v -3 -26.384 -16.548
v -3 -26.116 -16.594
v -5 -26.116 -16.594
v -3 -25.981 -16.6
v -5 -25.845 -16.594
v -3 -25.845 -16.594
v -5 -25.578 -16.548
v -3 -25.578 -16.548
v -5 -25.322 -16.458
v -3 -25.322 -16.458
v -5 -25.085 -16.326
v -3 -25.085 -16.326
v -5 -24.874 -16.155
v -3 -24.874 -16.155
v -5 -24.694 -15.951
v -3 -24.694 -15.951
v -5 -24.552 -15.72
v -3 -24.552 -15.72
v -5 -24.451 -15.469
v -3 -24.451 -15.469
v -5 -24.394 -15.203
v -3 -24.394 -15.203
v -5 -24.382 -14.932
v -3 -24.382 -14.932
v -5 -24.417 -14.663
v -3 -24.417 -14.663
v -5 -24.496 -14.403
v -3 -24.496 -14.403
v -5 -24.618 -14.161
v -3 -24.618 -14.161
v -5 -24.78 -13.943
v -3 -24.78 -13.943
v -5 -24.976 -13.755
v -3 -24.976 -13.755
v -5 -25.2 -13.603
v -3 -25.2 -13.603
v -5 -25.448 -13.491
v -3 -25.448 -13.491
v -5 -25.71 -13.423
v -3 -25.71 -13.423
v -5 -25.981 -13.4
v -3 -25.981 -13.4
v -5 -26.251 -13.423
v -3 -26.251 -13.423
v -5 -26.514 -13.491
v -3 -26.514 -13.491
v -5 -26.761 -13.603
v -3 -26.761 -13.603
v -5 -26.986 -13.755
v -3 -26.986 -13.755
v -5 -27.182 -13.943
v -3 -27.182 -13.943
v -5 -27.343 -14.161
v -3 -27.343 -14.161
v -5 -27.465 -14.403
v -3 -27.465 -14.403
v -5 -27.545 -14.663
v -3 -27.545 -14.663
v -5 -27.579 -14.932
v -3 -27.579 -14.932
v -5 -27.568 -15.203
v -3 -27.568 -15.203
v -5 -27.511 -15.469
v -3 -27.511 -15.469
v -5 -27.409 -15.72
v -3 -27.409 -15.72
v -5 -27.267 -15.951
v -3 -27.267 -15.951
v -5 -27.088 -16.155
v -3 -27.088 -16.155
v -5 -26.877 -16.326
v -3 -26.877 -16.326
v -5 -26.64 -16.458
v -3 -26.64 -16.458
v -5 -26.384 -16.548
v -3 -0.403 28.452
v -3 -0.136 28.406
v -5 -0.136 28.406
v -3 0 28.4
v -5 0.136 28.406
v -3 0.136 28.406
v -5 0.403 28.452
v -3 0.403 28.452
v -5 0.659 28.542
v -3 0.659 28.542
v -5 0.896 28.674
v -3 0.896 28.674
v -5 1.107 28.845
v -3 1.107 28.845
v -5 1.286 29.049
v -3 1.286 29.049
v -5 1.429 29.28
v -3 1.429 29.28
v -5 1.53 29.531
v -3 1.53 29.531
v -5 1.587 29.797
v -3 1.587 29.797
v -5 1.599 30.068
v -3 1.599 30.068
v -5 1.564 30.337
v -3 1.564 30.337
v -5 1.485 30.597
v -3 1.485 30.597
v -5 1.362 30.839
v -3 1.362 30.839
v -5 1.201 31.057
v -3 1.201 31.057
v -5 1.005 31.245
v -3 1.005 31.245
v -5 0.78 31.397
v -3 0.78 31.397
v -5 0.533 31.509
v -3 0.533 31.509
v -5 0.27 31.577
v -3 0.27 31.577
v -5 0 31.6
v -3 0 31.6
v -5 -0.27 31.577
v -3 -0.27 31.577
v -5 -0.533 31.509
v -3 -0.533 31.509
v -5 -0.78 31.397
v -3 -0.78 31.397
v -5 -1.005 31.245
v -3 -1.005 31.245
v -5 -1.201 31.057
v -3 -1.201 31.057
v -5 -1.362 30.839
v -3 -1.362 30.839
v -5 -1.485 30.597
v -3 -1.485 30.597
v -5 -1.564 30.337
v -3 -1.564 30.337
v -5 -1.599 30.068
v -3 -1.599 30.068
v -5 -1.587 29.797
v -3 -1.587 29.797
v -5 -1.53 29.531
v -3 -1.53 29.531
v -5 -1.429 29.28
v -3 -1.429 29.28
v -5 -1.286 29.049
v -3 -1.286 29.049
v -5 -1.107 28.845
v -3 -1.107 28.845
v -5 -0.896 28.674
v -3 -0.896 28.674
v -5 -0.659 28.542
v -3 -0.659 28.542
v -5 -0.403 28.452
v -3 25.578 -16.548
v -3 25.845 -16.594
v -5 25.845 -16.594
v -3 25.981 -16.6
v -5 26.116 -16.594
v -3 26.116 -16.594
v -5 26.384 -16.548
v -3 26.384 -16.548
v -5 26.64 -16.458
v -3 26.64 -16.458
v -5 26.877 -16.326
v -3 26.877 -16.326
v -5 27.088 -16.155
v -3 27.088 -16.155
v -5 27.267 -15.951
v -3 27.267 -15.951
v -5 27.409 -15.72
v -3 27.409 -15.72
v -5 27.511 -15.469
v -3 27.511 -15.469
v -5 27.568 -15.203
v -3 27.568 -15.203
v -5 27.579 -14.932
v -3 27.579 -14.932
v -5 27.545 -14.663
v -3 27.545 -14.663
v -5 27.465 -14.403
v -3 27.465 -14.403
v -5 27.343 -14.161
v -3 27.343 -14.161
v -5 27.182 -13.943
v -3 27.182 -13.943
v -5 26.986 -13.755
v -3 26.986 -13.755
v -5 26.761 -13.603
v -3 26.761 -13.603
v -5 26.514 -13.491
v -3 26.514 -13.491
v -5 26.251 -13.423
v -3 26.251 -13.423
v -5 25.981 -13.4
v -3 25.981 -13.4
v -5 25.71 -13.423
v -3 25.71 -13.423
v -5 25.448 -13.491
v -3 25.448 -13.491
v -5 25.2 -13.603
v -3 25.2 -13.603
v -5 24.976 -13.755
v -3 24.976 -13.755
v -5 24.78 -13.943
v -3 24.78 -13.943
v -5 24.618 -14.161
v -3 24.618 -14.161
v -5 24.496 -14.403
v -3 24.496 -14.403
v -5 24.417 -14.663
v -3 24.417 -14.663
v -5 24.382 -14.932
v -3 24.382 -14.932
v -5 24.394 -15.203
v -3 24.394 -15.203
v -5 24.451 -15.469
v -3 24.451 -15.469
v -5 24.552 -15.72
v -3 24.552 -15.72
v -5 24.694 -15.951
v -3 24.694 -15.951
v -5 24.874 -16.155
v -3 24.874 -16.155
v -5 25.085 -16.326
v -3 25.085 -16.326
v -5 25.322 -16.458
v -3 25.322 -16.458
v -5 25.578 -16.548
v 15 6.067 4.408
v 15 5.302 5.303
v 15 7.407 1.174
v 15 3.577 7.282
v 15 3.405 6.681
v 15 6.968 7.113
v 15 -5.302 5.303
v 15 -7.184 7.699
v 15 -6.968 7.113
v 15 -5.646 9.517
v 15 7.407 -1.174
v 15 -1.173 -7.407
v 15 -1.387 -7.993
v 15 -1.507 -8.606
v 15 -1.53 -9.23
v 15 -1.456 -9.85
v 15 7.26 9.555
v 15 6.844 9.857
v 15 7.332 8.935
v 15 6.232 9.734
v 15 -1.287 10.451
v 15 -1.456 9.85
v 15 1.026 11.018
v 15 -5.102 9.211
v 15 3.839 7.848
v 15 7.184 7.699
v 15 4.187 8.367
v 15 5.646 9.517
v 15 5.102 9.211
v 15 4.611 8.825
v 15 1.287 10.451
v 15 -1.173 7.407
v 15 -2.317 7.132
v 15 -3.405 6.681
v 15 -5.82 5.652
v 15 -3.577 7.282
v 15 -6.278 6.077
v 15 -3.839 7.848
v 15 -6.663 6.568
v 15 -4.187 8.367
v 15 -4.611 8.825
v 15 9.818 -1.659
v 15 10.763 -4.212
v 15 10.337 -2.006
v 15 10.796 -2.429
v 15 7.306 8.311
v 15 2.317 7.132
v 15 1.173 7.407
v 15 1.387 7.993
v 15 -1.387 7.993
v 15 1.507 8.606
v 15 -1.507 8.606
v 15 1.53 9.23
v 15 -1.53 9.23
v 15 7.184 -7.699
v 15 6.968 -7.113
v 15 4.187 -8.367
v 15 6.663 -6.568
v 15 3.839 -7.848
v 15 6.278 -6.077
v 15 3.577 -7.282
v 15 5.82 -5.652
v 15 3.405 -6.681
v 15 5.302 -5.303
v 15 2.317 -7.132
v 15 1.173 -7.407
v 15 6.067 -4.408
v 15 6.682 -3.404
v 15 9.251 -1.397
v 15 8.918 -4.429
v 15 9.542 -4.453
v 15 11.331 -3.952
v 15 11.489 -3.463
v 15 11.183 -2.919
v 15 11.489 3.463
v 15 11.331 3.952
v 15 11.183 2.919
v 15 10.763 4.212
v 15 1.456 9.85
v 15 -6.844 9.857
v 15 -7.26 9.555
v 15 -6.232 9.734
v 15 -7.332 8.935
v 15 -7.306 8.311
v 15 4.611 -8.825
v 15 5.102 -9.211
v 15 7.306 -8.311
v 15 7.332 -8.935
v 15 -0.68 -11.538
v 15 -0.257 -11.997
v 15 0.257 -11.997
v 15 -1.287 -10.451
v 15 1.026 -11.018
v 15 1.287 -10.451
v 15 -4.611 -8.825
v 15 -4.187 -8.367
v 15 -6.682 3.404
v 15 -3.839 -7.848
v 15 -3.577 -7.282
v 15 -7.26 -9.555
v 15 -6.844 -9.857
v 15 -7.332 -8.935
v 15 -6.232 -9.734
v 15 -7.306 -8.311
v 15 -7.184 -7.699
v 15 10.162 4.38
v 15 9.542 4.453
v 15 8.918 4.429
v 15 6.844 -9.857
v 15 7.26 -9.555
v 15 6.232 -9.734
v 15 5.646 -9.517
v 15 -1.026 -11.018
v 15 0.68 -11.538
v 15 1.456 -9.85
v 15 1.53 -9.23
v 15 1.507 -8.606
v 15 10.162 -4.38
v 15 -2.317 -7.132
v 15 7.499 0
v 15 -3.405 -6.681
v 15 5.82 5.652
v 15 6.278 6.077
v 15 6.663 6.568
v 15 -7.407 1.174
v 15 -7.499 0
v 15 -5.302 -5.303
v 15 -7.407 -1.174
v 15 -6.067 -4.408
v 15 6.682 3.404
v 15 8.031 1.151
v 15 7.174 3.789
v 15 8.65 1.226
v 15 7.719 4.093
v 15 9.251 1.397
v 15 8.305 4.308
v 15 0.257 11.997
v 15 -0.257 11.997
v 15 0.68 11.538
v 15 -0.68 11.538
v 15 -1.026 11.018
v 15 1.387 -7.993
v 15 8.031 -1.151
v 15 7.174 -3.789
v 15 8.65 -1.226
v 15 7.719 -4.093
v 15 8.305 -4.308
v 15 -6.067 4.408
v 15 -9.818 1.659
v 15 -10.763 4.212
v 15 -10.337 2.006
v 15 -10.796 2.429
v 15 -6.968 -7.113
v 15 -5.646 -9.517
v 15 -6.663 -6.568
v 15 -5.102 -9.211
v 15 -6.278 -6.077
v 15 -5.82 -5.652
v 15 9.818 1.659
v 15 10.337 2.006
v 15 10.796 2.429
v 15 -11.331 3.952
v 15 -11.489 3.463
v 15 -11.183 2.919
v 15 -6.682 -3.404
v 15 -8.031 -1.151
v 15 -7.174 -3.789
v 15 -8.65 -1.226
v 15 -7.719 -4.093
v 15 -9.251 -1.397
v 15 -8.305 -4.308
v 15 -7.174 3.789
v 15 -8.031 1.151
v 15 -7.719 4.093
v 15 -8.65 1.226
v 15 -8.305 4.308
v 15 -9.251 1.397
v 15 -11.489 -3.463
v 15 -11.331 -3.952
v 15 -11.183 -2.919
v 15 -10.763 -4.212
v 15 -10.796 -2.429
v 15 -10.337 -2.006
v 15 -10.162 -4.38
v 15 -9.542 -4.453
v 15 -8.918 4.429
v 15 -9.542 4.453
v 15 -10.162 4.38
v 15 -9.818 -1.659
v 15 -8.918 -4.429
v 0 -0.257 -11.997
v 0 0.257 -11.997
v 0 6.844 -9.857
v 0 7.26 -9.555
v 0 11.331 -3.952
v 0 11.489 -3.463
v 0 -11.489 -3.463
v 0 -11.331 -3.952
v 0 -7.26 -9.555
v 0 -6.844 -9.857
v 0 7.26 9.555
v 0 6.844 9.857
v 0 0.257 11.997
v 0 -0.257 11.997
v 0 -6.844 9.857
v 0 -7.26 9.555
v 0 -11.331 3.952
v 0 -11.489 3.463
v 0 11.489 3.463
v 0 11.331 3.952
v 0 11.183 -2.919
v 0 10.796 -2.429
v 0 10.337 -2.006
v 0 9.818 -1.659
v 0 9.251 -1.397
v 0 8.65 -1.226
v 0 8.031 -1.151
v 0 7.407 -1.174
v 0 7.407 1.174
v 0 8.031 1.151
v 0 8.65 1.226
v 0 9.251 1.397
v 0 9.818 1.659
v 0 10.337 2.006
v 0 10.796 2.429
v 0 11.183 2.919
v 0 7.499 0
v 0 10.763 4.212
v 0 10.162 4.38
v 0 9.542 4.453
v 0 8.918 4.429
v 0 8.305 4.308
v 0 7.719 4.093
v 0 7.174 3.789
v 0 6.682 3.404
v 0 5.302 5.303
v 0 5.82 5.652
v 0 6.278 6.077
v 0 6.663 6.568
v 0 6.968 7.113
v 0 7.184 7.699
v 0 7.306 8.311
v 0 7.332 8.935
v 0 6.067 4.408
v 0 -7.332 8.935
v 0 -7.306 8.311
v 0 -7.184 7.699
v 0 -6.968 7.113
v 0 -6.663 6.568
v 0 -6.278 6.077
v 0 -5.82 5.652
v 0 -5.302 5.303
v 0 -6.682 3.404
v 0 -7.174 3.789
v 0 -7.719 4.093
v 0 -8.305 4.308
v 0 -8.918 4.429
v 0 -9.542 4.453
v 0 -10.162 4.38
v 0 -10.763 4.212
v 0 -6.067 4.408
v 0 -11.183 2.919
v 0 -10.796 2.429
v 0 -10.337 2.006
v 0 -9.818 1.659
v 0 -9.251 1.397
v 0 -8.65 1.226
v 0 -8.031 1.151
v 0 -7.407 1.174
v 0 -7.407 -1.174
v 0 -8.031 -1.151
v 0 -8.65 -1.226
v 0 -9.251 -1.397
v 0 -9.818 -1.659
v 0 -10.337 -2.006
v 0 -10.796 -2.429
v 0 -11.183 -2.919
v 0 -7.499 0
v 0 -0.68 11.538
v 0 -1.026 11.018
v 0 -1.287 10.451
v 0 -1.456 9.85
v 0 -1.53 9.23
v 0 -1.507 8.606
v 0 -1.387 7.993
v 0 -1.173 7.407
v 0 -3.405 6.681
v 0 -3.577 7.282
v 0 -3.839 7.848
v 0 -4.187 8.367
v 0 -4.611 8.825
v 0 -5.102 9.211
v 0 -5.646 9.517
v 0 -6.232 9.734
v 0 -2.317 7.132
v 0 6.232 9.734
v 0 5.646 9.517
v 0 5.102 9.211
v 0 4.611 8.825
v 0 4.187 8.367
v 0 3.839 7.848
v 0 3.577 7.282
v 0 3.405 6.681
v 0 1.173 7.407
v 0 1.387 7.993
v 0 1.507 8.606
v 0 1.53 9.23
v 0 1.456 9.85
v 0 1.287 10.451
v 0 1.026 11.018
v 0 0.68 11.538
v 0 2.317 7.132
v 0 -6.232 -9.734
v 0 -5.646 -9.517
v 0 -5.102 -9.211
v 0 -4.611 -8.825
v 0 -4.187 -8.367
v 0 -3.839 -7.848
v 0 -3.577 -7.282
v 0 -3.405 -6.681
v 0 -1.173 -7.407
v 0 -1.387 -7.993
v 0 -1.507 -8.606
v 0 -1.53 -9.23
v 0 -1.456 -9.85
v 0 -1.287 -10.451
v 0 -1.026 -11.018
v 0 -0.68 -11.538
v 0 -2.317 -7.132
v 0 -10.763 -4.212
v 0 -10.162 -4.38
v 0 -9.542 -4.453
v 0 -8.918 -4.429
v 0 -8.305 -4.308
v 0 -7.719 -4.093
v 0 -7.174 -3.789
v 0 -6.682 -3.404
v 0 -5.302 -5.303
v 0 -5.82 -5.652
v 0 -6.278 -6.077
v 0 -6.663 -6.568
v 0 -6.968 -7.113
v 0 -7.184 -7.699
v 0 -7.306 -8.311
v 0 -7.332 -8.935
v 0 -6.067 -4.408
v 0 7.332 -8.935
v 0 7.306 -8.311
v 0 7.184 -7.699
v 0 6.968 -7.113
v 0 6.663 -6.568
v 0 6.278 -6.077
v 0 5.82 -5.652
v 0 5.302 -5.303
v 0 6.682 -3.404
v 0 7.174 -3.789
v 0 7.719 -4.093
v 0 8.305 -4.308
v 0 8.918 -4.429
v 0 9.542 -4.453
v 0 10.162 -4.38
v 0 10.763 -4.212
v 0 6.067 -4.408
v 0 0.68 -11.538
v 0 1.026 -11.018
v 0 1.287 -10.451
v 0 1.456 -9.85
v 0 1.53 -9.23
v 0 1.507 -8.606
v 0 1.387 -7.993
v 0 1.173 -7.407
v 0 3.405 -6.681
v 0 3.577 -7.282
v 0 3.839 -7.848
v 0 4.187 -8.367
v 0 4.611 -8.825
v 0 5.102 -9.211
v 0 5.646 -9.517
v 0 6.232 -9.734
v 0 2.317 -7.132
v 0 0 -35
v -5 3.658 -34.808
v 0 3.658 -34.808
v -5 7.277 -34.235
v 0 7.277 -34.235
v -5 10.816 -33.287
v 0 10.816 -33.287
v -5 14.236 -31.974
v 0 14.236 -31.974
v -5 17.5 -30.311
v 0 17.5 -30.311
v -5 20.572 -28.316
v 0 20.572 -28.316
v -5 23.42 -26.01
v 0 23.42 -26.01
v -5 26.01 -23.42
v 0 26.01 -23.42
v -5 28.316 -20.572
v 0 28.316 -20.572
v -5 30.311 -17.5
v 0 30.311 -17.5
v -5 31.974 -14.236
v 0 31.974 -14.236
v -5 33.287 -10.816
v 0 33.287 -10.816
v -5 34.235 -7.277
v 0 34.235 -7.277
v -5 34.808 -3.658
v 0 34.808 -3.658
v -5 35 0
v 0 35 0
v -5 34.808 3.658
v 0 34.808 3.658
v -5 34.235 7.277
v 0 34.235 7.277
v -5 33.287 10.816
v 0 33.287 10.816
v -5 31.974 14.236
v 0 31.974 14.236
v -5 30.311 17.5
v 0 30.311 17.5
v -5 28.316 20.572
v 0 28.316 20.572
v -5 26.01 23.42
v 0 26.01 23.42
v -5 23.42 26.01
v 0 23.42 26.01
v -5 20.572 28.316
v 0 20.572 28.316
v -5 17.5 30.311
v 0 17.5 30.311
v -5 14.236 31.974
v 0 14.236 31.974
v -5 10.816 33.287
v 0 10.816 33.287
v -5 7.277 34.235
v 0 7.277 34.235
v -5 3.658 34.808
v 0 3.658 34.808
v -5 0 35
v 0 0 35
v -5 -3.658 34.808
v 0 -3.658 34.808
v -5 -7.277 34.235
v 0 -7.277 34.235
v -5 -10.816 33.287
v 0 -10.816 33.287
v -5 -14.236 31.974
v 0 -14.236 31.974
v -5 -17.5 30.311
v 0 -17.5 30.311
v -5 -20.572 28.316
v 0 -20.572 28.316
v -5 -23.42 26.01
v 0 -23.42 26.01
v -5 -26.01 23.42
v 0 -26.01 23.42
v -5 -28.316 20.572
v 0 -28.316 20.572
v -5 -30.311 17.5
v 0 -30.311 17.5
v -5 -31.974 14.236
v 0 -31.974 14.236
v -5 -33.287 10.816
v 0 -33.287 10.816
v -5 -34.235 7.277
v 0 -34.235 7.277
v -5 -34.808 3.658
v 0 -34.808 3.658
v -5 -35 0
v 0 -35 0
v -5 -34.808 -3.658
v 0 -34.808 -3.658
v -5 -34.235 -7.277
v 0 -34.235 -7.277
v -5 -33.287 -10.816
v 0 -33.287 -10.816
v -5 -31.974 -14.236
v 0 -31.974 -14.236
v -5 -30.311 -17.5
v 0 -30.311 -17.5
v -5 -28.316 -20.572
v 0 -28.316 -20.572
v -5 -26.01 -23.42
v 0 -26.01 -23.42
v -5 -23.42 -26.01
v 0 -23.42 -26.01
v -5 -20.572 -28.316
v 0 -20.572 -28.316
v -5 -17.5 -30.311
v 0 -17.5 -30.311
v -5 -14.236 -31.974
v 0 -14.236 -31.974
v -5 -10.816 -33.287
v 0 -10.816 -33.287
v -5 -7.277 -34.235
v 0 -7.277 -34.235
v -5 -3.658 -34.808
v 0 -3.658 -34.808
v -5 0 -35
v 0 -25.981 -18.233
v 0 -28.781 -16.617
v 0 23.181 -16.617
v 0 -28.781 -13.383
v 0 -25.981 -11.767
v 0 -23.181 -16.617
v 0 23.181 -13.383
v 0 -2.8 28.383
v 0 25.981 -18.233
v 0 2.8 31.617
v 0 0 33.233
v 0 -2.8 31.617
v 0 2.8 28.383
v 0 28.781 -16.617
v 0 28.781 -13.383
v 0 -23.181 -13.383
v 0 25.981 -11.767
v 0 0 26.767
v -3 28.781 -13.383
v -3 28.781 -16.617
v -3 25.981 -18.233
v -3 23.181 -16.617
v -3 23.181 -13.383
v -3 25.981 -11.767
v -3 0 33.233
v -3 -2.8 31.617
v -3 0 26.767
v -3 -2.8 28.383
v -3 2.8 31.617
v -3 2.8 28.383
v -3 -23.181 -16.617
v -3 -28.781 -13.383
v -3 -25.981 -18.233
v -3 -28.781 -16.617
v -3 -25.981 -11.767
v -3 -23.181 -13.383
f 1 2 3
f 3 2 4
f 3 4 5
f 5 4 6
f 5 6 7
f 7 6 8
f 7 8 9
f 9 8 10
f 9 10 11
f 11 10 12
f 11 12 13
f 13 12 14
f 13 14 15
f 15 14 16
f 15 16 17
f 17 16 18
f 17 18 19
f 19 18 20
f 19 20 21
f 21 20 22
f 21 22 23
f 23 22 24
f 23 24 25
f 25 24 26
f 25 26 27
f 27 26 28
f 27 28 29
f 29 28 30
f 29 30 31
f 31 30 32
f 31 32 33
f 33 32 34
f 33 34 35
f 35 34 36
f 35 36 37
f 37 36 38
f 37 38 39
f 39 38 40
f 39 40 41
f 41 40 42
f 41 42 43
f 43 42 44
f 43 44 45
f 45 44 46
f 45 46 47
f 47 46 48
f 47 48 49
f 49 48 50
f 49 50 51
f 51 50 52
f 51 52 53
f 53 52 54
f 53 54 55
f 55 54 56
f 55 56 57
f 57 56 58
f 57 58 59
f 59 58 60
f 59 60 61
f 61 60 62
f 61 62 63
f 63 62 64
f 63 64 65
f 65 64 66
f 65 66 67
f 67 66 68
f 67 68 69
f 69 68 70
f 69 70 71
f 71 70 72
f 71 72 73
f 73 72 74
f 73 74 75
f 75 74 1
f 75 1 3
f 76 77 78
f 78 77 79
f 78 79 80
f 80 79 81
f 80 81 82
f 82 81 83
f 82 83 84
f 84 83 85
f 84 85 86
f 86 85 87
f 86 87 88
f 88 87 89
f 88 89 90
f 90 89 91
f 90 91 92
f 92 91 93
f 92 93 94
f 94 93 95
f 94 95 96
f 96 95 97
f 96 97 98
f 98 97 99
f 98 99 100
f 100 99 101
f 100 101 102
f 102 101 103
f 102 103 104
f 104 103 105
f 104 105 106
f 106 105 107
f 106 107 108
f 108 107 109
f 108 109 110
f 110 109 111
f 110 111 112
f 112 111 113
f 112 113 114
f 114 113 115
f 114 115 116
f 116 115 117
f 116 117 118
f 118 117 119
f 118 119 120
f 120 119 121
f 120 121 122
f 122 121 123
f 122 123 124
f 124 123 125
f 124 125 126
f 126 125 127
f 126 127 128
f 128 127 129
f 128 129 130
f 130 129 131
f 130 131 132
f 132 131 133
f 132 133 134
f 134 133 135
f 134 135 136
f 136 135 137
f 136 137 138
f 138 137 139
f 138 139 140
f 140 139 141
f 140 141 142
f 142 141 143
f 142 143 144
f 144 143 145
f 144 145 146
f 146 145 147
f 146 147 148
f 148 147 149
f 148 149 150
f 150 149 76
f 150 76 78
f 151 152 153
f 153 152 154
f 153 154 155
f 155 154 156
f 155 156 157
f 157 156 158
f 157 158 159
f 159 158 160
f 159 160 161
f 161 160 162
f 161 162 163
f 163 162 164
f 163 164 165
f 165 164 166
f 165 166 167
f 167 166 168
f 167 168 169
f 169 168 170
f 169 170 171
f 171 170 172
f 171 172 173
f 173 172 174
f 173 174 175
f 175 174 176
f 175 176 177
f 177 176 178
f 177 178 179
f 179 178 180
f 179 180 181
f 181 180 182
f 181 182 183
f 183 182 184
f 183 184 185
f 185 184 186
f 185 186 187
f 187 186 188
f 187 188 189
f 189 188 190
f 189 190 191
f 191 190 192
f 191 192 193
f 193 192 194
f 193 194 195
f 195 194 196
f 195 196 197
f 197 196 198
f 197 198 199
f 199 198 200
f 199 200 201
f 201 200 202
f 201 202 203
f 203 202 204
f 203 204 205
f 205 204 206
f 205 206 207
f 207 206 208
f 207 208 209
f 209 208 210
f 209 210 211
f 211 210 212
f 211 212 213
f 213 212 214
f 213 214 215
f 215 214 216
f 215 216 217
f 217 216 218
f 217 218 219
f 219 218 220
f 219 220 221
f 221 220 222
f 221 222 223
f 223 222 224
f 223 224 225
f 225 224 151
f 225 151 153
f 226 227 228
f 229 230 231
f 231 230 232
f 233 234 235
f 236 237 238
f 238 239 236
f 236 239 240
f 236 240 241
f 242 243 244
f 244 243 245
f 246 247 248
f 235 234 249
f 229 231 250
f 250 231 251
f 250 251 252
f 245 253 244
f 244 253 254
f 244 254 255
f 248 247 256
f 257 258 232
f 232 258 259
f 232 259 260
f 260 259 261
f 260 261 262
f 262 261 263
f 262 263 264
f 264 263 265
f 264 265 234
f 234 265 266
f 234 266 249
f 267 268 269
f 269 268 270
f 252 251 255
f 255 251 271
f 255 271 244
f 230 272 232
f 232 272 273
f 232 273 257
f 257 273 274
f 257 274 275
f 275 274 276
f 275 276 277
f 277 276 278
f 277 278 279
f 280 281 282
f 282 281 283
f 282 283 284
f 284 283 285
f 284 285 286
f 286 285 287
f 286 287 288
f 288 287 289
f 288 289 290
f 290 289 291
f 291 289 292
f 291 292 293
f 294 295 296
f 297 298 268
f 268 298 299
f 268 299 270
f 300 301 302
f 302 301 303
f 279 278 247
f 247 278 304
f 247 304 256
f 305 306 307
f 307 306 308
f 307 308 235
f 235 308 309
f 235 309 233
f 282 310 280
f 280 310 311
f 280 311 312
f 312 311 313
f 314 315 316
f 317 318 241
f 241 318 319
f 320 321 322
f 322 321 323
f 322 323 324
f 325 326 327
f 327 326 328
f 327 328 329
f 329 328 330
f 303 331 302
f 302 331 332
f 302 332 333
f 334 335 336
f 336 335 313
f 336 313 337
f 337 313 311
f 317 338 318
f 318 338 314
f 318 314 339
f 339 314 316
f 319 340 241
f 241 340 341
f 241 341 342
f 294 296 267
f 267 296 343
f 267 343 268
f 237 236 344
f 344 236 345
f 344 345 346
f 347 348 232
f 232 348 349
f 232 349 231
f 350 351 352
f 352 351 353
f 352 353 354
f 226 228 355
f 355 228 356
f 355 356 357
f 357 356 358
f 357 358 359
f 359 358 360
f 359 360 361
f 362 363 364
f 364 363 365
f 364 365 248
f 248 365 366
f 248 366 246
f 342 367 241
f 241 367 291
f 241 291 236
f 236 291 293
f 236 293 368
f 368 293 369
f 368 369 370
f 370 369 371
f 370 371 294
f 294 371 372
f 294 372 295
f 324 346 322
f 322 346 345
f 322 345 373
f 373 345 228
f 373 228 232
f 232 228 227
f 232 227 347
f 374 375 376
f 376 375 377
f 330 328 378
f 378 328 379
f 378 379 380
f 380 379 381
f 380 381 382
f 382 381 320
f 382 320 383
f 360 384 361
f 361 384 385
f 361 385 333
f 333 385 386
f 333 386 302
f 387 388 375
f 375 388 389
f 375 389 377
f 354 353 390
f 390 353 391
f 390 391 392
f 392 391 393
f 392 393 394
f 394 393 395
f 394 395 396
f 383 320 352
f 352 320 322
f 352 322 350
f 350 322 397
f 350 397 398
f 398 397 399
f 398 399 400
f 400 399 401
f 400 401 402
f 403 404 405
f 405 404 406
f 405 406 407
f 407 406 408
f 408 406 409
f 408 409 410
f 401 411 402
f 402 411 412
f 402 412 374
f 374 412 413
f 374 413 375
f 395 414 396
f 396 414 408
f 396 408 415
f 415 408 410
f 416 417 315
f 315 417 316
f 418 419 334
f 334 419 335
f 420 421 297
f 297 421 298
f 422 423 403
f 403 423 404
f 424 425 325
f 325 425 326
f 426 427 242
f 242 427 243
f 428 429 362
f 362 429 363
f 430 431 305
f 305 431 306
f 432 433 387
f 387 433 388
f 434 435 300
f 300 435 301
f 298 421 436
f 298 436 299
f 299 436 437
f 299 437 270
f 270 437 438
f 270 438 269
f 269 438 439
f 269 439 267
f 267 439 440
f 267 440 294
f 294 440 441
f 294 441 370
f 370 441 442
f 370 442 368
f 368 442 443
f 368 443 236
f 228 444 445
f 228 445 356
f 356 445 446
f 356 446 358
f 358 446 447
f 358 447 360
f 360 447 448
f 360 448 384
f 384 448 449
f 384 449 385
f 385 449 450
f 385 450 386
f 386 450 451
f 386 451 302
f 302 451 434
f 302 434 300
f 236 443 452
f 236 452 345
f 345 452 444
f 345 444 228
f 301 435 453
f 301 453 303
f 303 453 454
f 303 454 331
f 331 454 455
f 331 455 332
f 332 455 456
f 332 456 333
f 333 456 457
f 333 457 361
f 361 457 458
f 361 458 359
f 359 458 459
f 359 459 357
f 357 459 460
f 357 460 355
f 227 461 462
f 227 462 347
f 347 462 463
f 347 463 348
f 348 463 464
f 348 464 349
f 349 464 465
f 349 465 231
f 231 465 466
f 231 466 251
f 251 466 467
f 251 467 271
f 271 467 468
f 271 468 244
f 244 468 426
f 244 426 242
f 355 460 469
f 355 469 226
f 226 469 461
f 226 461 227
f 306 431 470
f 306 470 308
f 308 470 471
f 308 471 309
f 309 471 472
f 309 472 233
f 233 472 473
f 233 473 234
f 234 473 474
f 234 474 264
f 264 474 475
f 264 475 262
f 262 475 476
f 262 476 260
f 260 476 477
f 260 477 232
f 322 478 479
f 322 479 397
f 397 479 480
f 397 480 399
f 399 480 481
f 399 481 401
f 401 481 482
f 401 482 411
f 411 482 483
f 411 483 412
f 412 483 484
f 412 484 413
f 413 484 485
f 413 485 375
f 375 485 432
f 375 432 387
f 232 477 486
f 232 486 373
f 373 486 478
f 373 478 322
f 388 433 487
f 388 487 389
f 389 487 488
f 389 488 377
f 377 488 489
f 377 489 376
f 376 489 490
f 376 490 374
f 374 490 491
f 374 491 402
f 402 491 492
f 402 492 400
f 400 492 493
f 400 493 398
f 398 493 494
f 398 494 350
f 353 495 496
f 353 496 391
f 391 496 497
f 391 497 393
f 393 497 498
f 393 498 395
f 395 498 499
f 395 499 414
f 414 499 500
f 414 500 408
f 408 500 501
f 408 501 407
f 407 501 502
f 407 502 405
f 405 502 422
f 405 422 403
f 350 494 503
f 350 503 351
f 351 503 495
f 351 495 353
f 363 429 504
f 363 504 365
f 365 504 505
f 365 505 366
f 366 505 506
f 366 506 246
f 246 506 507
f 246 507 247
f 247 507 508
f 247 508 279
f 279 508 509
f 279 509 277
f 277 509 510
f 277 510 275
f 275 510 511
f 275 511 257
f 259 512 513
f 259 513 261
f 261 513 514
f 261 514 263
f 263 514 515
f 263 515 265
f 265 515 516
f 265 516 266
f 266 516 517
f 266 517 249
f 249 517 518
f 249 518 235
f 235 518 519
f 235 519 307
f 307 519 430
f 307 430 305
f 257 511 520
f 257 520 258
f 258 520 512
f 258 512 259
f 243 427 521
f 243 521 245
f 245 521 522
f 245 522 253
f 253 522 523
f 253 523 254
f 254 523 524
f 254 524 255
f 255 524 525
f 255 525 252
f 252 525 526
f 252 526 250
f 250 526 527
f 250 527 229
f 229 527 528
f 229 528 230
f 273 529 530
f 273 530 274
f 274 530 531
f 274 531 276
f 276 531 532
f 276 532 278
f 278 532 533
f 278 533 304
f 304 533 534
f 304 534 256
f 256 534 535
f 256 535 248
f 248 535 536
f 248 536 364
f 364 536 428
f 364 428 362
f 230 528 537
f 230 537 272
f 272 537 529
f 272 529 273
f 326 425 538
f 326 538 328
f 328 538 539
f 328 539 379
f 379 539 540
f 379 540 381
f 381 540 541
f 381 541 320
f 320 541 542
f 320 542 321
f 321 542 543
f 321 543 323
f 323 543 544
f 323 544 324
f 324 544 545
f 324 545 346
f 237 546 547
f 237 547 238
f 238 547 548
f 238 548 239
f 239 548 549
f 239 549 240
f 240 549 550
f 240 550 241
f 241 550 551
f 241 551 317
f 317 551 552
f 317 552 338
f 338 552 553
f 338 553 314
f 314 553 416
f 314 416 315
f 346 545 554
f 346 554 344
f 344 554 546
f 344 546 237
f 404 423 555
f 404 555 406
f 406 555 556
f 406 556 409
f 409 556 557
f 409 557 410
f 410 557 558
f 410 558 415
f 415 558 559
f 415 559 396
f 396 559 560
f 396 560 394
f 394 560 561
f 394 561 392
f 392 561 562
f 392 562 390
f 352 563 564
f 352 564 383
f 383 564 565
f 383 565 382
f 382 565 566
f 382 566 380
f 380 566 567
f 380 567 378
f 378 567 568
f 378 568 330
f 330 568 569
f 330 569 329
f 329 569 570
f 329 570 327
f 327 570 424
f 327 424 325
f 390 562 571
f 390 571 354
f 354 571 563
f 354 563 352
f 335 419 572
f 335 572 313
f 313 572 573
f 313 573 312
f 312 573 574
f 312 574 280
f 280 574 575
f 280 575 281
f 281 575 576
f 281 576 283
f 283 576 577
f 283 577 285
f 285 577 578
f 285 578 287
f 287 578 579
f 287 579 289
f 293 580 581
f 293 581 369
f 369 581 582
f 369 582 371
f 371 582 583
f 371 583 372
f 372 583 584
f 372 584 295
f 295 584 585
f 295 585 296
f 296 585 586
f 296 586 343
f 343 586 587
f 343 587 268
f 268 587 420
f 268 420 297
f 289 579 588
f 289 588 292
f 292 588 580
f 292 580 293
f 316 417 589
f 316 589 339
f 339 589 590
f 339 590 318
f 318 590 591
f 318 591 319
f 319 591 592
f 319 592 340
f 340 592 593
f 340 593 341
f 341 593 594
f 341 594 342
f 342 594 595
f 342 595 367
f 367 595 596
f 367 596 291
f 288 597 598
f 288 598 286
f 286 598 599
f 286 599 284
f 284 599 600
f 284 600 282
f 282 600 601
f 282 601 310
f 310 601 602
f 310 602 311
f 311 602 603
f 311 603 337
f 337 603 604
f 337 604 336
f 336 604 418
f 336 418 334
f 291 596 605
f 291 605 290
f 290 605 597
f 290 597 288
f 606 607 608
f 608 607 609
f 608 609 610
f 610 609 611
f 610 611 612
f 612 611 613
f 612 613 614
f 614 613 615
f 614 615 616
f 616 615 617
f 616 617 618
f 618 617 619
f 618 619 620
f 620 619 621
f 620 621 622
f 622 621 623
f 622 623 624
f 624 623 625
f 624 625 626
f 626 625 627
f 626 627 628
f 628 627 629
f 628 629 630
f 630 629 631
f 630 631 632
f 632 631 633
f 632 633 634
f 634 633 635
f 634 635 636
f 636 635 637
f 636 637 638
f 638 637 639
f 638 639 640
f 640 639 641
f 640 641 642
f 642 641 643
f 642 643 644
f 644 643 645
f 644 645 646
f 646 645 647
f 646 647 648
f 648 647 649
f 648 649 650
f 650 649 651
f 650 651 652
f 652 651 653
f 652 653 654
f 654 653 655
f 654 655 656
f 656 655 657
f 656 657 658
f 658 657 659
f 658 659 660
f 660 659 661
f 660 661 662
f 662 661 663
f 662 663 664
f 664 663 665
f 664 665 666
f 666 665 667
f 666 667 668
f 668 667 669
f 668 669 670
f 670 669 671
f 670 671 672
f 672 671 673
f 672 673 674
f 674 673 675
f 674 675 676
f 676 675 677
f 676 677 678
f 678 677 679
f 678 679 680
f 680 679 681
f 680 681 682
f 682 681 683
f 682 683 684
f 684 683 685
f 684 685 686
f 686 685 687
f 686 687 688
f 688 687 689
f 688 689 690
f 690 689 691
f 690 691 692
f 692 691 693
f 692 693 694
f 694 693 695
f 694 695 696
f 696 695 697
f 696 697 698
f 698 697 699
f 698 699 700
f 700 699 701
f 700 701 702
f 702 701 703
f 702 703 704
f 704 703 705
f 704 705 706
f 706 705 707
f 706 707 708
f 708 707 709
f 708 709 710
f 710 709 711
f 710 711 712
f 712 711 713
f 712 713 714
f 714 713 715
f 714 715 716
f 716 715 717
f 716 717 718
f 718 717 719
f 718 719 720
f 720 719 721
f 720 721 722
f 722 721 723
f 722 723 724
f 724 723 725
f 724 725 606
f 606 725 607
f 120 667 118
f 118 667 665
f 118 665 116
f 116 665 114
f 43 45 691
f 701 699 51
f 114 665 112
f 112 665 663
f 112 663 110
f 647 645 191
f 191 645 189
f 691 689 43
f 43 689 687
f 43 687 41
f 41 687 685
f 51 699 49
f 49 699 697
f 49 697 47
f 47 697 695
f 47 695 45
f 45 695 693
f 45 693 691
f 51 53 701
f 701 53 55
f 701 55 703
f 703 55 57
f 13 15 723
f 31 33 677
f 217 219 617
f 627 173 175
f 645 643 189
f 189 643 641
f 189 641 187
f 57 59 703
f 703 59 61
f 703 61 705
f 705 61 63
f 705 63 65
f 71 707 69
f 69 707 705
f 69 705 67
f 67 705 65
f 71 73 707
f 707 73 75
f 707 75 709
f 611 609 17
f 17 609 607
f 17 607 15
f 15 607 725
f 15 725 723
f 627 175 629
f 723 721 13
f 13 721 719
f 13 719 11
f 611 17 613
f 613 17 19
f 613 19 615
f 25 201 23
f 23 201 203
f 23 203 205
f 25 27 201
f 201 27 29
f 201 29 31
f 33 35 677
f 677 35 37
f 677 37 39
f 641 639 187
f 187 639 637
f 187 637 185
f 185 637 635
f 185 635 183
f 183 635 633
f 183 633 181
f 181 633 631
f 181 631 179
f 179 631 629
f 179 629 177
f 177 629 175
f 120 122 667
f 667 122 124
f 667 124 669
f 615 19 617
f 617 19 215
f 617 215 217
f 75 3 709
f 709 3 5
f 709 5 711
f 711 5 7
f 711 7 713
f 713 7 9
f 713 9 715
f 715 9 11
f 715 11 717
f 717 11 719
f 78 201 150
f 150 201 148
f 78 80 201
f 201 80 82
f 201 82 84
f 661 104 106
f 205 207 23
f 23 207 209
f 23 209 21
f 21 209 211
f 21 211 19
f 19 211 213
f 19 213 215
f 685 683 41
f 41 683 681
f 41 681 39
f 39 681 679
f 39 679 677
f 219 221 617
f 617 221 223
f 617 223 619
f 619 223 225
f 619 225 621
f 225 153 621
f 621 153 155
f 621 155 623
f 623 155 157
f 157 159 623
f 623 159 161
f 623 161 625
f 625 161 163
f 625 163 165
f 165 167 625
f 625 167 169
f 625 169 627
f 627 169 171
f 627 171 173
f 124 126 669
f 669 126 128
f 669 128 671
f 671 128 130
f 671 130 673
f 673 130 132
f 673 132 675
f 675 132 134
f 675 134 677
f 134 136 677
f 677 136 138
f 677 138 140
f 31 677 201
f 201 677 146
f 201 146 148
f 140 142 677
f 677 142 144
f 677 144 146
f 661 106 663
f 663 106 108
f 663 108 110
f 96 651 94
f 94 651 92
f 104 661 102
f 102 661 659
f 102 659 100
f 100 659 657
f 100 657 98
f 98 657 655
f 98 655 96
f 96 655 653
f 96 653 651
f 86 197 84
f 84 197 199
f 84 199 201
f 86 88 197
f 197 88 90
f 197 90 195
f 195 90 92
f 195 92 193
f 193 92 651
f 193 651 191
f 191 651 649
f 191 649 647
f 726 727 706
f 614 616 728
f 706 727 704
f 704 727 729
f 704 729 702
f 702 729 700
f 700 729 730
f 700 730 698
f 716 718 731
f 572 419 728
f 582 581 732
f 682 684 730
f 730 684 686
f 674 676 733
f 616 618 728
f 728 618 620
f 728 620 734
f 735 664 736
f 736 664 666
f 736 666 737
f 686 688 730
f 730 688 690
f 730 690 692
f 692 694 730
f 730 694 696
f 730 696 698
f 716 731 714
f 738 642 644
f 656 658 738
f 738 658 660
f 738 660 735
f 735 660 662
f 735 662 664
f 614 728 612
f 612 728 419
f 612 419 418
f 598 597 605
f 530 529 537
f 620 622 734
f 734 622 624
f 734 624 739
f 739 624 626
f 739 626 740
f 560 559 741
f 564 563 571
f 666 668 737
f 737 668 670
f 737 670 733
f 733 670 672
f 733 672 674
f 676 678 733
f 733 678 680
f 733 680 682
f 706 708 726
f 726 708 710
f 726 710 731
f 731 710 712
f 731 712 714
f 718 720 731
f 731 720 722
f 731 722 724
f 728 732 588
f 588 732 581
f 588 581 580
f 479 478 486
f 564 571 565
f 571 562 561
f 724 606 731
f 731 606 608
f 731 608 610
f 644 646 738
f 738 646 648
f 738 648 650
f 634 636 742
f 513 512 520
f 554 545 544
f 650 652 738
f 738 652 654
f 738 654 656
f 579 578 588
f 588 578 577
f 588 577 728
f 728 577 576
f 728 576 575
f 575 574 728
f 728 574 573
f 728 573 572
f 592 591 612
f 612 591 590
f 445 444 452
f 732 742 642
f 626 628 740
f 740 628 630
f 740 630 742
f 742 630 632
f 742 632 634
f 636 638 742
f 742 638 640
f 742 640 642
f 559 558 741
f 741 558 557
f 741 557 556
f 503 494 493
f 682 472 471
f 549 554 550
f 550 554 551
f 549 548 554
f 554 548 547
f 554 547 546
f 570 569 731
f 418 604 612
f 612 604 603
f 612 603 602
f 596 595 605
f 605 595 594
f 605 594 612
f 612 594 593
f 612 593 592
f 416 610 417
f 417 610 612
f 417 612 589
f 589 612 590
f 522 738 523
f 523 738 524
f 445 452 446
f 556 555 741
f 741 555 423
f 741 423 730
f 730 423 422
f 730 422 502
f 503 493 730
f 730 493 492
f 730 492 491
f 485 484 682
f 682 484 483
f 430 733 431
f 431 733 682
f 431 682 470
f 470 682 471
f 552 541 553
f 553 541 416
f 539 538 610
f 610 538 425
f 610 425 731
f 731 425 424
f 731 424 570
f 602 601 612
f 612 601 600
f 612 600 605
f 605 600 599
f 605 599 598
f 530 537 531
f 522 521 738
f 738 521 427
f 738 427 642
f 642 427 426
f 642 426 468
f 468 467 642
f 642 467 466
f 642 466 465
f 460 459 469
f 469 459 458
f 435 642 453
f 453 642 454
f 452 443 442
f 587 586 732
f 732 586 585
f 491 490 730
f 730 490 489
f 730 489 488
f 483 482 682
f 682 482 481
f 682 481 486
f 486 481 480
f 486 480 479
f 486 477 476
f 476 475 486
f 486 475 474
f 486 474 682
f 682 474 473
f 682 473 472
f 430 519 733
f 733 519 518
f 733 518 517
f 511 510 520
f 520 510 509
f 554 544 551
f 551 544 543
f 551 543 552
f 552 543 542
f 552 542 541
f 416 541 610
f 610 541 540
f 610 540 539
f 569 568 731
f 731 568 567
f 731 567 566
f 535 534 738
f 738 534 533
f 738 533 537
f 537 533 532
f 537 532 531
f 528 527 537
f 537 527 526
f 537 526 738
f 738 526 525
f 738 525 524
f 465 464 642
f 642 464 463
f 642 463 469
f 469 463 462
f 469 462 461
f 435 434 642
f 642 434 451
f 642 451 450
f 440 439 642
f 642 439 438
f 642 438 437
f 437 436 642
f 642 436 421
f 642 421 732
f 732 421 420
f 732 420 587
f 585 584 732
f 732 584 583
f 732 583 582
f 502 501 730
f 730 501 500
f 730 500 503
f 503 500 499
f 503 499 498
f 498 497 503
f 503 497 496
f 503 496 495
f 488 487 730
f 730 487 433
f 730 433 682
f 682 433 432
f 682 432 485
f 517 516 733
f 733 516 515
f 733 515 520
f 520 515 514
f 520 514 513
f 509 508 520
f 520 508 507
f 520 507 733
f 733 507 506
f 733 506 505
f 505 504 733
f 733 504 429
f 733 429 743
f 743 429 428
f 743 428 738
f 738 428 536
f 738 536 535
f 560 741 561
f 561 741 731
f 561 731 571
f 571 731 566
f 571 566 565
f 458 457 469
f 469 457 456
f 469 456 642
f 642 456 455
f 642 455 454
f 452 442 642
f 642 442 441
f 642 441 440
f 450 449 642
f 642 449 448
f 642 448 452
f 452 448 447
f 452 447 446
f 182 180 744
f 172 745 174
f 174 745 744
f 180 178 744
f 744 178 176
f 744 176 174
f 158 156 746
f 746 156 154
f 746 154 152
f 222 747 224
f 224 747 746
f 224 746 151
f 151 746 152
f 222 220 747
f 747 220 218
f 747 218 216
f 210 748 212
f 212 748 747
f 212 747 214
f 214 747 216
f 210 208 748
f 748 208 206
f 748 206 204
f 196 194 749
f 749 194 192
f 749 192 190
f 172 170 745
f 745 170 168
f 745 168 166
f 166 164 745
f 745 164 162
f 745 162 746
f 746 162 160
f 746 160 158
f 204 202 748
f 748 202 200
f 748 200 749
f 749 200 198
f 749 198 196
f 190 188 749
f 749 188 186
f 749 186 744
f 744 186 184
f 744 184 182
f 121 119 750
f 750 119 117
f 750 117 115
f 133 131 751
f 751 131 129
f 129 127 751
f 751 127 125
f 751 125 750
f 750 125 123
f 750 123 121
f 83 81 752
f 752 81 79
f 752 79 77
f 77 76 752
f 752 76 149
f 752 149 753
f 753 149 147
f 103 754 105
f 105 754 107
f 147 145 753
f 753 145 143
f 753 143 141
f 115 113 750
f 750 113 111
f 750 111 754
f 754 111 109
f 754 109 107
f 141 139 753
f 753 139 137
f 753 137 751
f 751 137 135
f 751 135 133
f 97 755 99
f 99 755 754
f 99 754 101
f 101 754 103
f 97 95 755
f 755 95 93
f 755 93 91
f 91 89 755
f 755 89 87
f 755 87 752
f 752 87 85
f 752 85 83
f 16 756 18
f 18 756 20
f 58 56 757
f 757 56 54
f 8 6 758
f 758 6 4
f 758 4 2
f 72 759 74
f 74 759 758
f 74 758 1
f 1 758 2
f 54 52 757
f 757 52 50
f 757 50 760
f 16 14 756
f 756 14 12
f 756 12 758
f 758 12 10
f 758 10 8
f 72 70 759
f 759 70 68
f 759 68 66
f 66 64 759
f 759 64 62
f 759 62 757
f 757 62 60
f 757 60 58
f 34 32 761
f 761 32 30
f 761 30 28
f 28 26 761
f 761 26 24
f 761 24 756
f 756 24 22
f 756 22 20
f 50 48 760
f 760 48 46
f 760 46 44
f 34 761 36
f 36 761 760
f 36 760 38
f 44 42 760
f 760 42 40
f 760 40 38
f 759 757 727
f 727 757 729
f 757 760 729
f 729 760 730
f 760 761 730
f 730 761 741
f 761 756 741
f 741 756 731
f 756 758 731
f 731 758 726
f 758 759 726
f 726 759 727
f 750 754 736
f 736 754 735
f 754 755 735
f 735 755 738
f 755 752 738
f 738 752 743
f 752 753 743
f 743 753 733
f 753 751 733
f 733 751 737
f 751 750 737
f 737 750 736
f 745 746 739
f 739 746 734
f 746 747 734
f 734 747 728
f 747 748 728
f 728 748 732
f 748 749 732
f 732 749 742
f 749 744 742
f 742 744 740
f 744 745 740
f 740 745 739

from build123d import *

# Parameters (mm, degrees)
BASPROSKE_W         = 15
BASPROSKE_H         = 12
TOOTHCUT_DEPTH      = 23.649503306
TEETHCUTS_COUNT     = 10
TEETHCUTS_ANGLE     = 324
BORSKE_R            = 0.45
BORE_DEPTH          = 50.0000508
SKETCH1_R           = 0.45
CUT_EXTRUDE1_DEPTH  = 15
SKETCH2_R           = 3.991106517
BOSS_EXTRUDE1_DEPTH = 15
SKETCH3_R           = 35
BOSS_EXTRUDE2_DEPTH = 5
SKETCH7_R           = 1.6
CUT_EXTRUDE2_DEPTH  = 10
CUT_EXTRUDE3_DEPTH  = 3
CUT_EXTRUDE5_DEPTH  = 3


with BuildPart() as part:
    # BasProSke → Base-Revolve (revolve)
    with BuildSketch(Plane(origin=(0, 0, 0), x_dir=(1, 0, 0), z_dir=(0, 1, 0)), mode=Mode.PRIVATE) as base_revolve_sk:
        with Locations((7.5, 6)):
            Rectangle(BASPROSKE_W, BASPROSKE_H)
    revolve(base_revolve_sk.sketch.rotate(Axis((-10, 0, 0), (1, 0, 0)), 180), axis=Axis((-10, 0, 0), (1, 0, 0)))

    # TooCutSke → ToothCut (cut, through all)
    with BuildSketch(Plane(origin=(0, 0, 0), x_dir=(0, 0, -1), z_dir=(1, 0, 0))):
        with BuildLine():
            ThreePointArc((1.173662691, 7.406586048), (0, 7.499), (-1.173662691, 7.406586048))
            ThreePointArc((-1.173662691, 7.406586048), (-1.668191438, 9.834565786), (-3.497907776, 11.50542856))
            ThreePointArc((-3.497907776, 11.50542856), (0, 12.0254), (3.497907776, 11.50542856))
            ThreePointArc((3.497907776, 11.50542856), (1.668191438, 9.834565786), (1.173662691, 7.406586048))
        make_face()
    toothcut = extrude(amount=TOOTHCUT_DEPTH, mode=Mode.SUBTRACT)

    # TeethCuts: ToothCut ×10 about axis
    teethcuts_axis = Axis((-10, 0, 0), (1, 0, 0))
    for i in range(1, TEETHCUTS_COUNT):
        add(toothcut.rotate(teethcuts_axis, i * TEETHCUTS_ANGLE / (TEETHCUTS_COUNT - 1)), mode=Mode.SUBTRACT)

    # BorSke → Bore (cut, symmetric)
    with BuildSketch(Plane(origin=(0, 0, 0), x_dir=(0, 0, -1), z_dir=(1, 0, 0))):
        with Locations(Location((0, 0, 0), (0, 0, 180))):
            Circle(BORSKE_R)
    extrude(amount=BORE_DEPTH, both=True, mode=Mode.SUBTRACT)

    # Sketch1 → Cut-Extrude1 (cut)
    with BuildSketch(Plane.ZY):
        with BuildLine():
            Line((1.212435565, 2.3), (-1.212435565, 2.3))
            ThreePointArc((-1.212435565, 2.3), (-1.343068786, -2.226244873), (2.6, 0))
            ThreePointArc((2.6, 0), (2.226244873, 1.343068786), (1.212435565, 2.3))
        make_face()
        Circle(SKETCH1_R, mode=Mode.SUBTRACT)
    extrude(amount=-CUT_EXTRUDE1_DEPTH, mode=Mode.SUBTRACT)

    # Sketch2 → Boss-Extrude1 (add)
    with BuildSketch(Plane.ZY):
        Circle(SKETCH2_R)
    extrude(amount=-BOSS_EXTRUDE1_DEPTH)

    # Sketch3 → Boss-Extrude2 (add)
    with BuildSketch(Plane.ZY):
        Circle(SKETCH3_R)
    extrude(amount=BOSS_EXTRUDE2_DEPTH)

    # Sketch7 → Cut-Extrude2 (cut)
    with BuildSketch(Plane.ZY.offset(5)):
        with Locations((30, 0)):
            Circle(SKETCH7_R)
        with Locations((-15, -25.980762114)):
            Circle(SKETCH7_R)
        with Locations((-15, 25.980762114)):
            Circle(SKETCH7_R)
    extrude(amount=-CUT_EXTRUDE2_DEPTH, mode=Mode.SUBTRACT)

    # Sketch8 → Cut-Extrude3 (cut)
    with BuildSketch(Plane(origin=(0, 0, 0), x_dir=(0, 0, -1), z_dir=(1, 0, 0))):
        Polygon((15.808290377, 27.380762114), (14.191709623, 27.380762114), (13.383419246, 25.980762114), (14.191709623, 24.580762114), (15.808290377, 24.580762114), (16.616580754, 25.980762114), align=None)
        Polygon((-31.616580754, 0), (-30.808290377, -1.4), (-29.191709623, -1.4), (-28.383419246, 0), (-29.191709623, 1.4), (-30.808290377, 1.4), align=None)
        Polygon((15.808290377, -27.380762114), (16.616580754, -25.980762114), (15.808290377, -24.580762114), (14.191709623, -24.580762114), (13.383419246, -25.980762114), (14.191709623, -27.380762114), align=None)
    extrude(amount=-CUT_EXTRUDE3_DEPTH, mode=Mode.SUBTRACT)

    # Sketch9 → Cut-Extrude5 (cut)
    with BuildSketch(Plane(origin=(0, 0, 0), x_dir=(0, 0, -1), z_dir=(1, 0, 0))):
        Polygon((16.616580754, 28.780762114), (13.383419246, 28.780762114), (11.766838493, 25.980762114), (13.383419246, 23.180762114), (16.616580754, 23.180762114), (18.233161507, 25.980762114), align=None)
        Polygon((-33.233161507, 0), (-31.616580754, -2.8), (-28.383419246, -2.8), (-26.766838493, 0), (-28.383419246, 2.8), (-31.616580754, 2.8), align=None)
        Polygon((16.616580754, -28.780762114), (18.233161507, -25.980762114), (16.616580754, -23.180762114), (13.383419246, -23.180762114), (11.766838493, -25.980762114), (13.383419246, -28.780762114), align=None)
    extrude(amount=-CUT_EXTRUDE5_DEPTH, mode=Mode.SUBTRACT)


solid = part.part
